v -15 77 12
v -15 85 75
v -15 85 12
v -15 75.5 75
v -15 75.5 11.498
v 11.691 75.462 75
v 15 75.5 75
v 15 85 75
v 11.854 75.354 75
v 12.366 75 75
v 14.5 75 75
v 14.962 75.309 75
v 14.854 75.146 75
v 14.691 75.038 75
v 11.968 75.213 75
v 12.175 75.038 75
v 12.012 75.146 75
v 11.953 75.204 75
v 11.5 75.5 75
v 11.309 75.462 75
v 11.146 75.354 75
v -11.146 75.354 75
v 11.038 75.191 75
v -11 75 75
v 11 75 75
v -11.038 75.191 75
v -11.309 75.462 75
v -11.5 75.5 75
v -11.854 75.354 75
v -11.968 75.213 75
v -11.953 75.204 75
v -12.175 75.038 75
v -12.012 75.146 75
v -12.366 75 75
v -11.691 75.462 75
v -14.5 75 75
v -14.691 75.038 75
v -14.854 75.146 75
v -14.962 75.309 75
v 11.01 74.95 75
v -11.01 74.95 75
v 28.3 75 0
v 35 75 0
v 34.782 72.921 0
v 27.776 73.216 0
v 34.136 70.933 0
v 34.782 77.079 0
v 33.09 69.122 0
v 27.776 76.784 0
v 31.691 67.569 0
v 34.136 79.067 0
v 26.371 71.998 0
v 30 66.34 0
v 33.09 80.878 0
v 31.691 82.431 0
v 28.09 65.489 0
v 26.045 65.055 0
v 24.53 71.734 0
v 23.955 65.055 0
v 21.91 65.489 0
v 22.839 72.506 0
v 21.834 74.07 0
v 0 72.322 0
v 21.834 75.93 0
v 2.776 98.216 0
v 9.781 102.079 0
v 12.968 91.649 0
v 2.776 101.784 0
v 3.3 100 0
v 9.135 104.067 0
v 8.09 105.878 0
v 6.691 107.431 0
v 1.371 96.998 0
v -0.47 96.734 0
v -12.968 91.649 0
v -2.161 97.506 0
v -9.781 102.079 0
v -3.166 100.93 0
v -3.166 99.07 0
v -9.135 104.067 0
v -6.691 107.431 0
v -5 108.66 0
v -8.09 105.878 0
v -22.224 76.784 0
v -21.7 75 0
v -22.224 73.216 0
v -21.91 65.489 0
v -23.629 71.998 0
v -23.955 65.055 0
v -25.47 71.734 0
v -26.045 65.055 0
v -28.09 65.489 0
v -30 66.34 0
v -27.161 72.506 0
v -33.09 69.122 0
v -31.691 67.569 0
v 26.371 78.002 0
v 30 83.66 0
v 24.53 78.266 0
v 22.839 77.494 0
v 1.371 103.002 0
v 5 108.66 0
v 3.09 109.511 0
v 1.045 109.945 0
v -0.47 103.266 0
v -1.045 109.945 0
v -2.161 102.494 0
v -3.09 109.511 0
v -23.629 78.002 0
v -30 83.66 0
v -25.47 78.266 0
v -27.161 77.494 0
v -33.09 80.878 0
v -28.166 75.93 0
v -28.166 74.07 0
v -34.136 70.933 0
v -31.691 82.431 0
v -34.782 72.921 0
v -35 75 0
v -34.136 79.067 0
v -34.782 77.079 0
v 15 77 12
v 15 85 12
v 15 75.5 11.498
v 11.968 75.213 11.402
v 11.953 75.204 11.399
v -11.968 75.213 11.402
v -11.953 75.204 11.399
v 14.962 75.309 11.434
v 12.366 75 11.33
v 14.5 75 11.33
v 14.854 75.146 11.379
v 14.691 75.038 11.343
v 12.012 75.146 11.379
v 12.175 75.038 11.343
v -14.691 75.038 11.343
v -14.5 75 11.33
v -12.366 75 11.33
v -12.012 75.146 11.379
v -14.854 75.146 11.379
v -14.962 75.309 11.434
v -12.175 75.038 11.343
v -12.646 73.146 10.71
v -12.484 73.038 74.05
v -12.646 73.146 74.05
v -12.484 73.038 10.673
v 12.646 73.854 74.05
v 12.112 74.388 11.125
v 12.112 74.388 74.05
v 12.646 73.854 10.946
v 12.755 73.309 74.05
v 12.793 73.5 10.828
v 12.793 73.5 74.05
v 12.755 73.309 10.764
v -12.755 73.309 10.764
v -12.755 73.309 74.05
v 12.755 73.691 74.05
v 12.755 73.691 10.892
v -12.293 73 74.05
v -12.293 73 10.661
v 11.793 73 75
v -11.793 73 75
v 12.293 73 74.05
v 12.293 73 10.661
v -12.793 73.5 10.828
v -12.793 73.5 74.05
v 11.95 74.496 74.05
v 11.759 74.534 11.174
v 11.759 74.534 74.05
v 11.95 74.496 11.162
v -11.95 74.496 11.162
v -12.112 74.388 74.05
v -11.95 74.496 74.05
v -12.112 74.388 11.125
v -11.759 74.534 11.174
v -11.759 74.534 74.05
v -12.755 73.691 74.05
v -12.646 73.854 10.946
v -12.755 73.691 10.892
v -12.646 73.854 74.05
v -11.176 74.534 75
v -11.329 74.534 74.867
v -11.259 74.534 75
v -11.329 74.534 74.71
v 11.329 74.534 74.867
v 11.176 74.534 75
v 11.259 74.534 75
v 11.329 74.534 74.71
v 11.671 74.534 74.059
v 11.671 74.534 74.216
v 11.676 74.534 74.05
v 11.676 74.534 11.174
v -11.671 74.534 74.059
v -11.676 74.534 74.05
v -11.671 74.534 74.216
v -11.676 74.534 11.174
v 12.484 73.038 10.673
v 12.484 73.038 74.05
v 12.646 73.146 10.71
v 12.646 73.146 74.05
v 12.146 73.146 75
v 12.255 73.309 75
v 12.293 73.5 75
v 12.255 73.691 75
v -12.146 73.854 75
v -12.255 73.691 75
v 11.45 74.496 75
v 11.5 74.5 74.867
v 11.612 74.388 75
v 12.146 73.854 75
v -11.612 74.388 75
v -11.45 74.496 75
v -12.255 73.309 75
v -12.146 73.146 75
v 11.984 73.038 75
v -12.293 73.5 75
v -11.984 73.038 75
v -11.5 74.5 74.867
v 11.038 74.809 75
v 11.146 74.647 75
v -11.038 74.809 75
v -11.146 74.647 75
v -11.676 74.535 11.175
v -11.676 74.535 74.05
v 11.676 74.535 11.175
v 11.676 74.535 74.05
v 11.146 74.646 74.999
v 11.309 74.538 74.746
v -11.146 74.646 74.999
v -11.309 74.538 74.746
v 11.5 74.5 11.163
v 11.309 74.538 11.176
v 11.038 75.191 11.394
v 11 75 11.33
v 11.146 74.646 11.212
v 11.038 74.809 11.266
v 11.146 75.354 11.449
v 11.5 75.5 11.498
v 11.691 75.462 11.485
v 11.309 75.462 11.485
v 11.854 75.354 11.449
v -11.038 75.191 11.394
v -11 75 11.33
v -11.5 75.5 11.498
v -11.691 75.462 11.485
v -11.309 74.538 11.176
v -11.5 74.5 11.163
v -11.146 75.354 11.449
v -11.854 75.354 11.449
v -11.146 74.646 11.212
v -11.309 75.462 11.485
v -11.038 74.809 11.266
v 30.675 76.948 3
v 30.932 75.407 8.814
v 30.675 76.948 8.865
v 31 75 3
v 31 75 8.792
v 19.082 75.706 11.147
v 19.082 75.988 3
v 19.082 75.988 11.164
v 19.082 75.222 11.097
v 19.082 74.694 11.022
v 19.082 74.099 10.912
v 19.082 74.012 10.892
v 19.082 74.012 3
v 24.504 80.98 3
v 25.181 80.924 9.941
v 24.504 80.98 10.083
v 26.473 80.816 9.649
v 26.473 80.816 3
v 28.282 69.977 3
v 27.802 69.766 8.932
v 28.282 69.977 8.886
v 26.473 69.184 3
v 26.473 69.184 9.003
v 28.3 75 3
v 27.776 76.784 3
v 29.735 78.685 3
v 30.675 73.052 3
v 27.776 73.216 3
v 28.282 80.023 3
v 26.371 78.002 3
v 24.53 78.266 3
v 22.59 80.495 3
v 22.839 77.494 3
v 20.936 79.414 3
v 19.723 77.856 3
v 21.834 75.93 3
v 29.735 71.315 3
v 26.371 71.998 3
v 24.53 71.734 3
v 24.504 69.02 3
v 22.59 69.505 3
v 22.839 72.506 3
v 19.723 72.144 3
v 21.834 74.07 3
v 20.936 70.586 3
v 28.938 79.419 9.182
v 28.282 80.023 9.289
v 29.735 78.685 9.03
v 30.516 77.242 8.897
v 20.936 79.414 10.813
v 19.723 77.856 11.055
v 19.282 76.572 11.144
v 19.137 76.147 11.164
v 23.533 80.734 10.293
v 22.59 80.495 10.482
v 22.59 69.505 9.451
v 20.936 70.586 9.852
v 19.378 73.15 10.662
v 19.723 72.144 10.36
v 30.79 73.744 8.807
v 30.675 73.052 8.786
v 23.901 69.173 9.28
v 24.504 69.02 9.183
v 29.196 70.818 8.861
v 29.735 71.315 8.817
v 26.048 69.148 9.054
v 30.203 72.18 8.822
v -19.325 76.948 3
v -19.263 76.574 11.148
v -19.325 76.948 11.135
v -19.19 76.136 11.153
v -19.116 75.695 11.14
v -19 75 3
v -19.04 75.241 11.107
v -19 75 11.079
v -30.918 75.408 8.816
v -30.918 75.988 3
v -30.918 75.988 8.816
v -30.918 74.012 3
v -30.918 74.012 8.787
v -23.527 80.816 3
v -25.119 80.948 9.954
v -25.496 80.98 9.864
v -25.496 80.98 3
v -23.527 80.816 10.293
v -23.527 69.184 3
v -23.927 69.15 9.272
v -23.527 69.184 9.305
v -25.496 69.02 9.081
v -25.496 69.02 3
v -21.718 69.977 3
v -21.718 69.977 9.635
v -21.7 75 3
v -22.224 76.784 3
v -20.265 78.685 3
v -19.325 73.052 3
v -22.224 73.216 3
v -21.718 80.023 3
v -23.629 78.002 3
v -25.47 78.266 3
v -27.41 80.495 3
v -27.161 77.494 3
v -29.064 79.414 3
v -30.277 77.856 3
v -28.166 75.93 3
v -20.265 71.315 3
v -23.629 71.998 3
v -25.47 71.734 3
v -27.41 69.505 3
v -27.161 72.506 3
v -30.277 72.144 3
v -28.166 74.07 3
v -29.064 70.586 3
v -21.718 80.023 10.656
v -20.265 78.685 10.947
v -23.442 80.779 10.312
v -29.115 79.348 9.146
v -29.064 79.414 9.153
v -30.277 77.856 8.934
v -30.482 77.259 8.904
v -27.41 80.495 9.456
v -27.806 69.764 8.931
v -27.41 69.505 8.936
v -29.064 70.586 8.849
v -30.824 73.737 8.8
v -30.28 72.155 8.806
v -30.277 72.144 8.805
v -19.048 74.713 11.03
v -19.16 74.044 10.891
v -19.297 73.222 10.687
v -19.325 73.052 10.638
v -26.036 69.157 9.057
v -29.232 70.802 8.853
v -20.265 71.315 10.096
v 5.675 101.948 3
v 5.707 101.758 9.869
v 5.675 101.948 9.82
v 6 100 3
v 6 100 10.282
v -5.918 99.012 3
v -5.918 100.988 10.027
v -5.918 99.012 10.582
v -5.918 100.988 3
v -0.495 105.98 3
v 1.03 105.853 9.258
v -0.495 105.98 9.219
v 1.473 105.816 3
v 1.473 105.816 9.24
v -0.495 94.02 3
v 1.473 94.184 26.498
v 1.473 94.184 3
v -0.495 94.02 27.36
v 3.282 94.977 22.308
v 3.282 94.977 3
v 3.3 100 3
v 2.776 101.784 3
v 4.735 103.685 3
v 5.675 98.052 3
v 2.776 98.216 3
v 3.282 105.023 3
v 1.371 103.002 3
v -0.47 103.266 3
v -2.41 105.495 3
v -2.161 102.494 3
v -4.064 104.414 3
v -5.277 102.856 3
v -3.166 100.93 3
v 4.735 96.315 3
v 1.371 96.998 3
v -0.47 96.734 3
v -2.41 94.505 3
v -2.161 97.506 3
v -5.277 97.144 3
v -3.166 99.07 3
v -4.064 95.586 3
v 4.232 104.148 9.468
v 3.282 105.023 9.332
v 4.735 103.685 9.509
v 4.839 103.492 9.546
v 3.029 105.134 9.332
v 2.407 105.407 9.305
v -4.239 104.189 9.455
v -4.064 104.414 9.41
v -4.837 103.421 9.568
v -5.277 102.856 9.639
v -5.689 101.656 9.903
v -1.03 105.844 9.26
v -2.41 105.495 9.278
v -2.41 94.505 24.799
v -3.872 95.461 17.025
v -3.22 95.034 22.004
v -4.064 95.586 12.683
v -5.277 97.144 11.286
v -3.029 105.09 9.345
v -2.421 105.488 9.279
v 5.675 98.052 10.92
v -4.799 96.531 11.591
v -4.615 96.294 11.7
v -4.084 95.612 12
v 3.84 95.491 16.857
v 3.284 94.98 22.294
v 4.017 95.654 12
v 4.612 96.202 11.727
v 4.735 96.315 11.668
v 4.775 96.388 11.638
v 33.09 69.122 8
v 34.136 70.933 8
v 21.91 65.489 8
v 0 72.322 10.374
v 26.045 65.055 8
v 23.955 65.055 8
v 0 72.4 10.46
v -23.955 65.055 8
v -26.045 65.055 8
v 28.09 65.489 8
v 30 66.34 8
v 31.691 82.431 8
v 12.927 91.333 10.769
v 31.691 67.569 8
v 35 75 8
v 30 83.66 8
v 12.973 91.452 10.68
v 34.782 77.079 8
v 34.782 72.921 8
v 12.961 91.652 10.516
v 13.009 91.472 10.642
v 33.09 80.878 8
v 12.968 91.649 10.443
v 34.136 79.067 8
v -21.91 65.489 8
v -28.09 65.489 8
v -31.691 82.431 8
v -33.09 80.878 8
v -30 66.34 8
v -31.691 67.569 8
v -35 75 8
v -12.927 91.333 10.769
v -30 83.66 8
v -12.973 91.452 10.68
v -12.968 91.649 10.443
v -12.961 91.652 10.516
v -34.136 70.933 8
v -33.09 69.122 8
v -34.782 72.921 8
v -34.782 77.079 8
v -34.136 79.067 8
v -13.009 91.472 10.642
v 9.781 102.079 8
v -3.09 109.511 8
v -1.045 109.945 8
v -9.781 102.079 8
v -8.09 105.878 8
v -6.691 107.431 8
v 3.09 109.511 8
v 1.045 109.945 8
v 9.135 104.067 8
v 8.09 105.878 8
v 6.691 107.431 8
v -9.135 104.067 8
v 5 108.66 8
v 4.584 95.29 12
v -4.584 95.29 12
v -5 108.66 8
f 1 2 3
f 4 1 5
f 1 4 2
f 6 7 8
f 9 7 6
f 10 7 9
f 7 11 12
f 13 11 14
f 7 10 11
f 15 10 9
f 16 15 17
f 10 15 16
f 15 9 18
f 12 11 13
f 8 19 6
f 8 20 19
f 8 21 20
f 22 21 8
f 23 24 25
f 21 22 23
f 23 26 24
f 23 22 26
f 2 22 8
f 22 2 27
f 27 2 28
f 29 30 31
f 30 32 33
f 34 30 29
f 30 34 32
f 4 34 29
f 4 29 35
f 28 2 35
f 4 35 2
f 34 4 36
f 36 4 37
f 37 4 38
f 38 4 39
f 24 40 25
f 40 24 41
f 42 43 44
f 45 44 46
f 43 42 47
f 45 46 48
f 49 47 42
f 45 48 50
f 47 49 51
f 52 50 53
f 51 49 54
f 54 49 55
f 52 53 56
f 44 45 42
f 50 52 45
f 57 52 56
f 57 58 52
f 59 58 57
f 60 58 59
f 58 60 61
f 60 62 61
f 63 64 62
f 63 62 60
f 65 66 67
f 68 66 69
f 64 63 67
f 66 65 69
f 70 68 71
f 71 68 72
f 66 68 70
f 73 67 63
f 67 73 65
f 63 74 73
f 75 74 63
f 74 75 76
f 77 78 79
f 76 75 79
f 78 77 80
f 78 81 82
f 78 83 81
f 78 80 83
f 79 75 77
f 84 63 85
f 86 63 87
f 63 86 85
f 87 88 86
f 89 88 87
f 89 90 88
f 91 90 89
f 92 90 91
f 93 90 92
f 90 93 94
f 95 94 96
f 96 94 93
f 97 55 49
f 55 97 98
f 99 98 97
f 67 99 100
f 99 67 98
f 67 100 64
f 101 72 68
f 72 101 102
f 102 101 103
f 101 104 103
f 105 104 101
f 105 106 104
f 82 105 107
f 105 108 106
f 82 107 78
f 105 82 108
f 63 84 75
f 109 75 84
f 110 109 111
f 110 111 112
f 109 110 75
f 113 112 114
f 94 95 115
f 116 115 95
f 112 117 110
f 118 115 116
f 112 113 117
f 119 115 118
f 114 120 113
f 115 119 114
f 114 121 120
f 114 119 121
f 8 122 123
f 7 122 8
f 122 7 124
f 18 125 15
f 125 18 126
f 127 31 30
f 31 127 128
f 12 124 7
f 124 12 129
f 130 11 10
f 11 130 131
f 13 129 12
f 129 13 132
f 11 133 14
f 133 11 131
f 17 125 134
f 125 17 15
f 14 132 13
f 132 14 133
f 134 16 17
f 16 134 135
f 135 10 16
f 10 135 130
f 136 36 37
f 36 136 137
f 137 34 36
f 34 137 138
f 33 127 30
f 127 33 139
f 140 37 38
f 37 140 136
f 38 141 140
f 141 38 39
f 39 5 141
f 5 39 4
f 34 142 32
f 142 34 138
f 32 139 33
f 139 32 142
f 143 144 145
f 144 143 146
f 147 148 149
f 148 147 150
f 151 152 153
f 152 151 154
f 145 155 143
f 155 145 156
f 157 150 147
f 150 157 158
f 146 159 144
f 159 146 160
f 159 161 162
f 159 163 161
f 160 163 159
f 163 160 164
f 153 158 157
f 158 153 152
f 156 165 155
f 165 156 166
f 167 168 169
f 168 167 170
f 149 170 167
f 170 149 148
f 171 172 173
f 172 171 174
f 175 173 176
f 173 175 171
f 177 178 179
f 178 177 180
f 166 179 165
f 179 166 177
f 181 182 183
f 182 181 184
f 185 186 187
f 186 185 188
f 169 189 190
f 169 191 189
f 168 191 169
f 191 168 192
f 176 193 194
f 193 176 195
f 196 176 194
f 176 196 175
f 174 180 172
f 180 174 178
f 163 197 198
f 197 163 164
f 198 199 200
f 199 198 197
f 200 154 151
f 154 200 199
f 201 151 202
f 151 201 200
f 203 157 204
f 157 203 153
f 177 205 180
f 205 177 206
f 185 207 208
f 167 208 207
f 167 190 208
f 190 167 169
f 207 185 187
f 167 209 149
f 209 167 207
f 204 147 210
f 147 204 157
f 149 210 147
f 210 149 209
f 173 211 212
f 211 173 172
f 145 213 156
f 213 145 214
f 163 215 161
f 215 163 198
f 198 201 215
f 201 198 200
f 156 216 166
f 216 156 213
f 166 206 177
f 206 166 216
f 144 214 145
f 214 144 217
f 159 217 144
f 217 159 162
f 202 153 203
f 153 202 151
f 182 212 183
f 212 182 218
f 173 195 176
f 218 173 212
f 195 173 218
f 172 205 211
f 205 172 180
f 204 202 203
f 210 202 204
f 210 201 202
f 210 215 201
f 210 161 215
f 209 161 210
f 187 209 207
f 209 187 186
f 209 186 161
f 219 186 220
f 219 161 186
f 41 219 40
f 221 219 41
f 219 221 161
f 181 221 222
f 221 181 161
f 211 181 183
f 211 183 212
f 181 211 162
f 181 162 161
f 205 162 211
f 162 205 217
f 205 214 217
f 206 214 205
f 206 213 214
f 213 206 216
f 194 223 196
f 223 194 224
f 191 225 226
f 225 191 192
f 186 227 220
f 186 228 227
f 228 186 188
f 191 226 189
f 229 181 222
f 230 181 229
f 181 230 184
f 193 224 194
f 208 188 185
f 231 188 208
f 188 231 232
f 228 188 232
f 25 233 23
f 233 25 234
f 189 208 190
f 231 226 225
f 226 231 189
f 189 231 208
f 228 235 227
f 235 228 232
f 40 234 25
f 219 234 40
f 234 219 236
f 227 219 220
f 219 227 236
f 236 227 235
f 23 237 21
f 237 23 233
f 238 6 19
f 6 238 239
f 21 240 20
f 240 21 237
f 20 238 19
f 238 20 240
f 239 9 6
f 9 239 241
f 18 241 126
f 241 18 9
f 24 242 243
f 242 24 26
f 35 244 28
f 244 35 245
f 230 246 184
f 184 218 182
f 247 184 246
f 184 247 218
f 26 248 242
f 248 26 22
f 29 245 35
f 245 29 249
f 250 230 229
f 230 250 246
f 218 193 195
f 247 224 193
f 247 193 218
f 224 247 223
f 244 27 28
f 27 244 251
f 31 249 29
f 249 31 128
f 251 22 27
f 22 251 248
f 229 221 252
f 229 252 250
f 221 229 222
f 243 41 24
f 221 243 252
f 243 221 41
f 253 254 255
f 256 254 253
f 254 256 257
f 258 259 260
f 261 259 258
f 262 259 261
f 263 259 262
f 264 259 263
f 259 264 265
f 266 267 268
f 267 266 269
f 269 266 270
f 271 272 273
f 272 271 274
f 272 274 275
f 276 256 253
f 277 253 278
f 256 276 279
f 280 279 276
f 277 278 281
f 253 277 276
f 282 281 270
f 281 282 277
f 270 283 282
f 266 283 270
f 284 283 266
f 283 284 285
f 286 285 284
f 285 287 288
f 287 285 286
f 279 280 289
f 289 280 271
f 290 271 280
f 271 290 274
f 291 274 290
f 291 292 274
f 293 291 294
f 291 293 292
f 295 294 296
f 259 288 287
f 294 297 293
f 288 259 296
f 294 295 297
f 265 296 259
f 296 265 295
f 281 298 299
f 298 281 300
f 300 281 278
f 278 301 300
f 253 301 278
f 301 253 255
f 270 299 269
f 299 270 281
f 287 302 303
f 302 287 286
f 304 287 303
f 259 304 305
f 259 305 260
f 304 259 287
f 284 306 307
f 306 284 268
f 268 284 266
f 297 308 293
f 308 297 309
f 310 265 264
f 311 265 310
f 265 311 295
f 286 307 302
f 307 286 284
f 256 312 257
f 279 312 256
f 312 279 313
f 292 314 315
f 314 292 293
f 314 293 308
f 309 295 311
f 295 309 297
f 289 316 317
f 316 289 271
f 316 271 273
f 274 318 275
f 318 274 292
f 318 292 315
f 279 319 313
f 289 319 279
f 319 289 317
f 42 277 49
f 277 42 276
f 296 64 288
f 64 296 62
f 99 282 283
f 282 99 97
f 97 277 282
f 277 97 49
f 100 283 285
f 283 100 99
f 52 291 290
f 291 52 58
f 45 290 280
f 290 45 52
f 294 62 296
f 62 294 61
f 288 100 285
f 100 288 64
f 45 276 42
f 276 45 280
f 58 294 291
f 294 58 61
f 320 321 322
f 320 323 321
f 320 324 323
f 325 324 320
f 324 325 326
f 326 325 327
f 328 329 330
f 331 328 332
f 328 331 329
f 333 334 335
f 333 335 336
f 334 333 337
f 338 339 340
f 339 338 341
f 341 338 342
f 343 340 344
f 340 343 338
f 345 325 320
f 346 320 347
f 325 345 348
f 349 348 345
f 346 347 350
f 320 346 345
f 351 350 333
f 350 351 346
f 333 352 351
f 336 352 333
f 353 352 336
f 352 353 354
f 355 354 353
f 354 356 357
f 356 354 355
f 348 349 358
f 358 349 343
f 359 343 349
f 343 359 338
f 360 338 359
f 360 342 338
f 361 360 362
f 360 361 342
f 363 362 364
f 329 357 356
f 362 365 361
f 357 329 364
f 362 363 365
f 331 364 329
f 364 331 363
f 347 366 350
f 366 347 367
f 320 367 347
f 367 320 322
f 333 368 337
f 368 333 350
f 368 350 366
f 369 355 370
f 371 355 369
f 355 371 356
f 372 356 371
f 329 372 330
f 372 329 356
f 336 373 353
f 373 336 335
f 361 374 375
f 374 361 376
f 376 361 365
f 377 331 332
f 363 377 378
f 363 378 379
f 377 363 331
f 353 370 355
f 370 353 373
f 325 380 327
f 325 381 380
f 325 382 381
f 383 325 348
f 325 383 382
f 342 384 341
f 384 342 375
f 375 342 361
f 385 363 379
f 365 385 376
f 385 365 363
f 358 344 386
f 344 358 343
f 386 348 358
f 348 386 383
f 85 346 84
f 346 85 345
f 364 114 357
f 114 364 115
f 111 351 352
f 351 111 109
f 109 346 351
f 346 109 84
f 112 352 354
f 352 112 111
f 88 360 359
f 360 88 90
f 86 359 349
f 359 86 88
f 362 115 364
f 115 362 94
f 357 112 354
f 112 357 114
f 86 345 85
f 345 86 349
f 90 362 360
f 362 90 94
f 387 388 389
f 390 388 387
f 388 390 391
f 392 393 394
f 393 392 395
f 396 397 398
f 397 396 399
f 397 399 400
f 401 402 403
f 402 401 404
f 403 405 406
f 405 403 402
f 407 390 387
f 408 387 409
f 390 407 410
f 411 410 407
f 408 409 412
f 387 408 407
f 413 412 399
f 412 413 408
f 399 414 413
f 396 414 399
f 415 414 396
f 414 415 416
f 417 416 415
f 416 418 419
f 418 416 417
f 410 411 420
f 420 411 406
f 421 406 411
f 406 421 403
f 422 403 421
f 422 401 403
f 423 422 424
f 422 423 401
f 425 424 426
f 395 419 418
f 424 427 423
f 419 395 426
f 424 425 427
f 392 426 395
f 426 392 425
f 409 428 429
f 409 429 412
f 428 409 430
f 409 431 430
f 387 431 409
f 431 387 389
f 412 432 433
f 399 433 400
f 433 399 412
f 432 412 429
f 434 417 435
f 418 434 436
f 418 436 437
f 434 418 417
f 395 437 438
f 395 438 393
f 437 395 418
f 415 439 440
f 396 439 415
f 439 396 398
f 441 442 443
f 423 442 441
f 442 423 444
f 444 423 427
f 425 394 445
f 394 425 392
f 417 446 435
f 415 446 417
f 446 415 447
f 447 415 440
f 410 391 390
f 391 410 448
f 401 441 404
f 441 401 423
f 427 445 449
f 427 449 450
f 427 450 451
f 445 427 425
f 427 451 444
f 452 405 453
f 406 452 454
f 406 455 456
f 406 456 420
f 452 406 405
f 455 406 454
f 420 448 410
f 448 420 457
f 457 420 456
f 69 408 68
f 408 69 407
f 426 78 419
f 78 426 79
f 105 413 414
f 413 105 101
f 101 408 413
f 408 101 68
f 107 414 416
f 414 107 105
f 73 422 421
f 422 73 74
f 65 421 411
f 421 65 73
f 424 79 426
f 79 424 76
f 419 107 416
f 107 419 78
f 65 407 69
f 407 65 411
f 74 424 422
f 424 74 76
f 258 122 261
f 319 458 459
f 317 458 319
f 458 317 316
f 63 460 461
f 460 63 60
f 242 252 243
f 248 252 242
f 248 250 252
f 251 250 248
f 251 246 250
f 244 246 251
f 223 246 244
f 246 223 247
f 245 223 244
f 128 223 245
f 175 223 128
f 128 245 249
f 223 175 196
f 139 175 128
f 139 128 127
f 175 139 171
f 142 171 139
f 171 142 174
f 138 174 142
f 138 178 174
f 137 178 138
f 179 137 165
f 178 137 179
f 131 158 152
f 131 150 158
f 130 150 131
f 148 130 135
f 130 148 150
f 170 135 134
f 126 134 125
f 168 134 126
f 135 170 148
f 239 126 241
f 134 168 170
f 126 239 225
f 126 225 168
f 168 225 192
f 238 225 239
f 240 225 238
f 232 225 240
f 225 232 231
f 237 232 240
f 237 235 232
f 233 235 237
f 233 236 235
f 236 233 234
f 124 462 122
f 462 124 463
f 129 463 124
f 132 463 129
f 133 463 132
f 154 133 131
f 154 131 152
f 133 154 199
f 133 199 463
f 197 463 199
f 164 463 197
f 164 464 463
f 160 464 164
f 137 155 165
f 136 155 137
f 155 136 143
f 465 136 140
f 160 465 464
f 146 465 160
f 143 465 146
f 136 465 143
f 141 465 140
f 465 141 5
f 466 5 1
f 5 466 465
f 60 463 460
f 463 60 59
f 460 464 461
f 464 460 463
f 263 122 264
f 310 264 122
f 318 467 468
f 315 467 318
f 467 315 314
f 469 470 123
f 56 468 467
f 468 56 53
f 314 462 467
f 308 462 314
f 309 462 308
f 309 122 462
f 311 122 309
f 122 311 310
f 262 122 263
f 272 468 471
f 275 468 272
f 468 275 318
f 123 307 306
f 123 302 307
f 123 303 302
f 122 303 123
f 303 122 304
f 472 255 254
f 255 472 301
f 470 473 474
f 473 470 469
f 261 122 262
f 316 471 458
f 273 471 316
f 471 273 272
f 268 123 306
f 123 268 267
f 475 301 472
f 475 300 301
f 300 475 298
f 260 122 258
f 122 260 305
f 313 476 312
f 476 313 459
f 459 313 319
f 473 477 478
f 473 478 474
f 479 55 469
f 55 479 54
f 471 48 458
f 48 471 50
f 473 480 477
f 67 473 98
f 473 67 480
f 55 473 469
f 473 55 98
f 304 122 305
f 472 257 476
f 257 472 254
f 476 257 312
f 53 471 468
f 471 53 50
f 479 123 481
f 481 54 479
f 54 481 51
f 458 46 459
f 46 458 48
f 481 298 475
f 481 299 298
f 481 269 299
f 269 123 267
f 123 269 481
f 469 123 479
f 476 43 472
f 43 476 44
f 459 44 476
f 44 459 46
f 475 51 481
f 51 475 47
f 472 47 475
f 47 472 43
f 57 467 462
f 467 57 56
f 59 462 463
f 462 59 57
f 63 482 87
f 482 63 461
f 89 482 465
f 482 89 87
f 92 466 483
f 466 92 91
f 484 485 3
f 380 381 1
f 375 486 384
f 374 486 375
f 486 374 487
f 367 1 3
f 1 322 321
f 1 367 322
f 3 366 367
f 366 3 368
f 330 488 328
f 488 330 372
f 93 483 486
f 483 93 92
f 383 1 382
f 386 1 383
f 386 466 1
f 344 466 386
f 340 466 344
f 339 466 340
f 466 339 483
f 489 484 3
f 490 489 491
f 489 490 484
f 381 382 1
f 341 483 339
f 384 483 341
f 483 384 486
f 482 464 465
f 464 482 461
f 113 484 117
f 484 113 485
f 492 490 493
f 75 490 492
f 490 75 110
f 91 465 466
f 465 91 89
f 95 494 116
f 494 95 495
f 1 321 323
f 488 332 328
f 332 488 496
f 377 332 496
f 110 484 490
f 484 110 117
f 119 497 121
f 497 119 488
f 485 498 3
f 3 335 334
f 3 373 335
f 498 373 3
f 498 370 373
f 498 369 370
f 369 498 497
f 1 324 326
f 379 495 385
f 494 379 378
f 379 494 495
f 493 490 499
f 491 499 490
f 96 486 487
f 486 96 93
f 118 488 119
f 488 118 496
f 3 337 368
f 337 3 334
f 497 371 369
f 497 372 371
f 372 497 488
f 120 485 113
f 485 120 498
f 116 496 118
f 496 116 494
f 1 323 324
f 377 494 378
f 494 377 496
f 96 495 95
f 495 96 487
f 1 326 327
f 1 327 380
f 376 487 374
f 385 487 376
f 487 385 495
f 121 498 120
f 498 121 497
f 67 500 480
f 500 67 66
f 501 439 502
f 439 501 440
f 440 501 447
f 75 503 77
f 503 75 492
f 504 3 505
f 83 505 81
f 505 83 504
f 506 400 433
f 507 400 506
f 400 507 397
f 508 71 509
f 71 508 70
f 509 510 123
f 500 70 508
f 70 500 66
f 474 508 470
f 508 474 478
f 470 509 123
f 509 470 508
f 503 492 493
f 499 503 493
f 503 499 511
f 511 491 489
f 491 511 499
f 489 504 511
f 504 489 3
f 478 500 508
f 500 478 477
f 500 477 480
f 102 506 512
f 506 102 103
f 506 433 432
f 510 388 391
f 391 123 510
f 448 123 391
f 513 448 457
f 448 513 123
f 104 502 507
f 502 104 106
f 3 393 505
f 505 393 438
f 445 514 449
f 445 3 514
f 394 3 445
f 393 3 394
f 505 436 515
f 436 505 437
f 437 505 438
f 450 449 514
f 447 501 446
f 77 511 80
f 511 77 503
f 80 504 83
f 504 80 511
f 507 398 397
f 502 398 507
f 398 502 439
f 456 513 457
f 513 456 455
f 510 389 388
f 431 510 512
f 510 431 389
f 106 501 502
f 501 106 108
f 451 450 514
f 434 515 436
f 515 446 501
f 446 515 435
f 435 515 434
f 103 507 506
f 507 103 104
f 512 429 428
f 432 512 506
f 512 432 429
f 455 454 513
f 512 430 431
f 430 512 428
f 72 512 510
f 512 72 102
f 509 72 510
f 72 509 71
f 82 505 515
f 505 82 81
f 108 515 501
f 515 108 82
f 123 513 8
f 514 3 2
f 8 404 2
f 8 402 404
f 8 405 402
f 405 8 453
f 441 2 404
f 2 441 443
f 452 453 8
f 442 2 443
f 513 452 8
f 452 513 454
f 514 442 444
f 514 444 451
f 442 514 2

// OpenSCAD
// file: parameters.scad
/*
OpenFlexure Dissection Microscope: Parameters

These variables set the geometry of the microscope.
*/

// Geometry of the mounting post
front_dovetail_y = 75; // position of the main dovetail
front_dovetail_w = 30; // width of the main dovetail
post_h = 75; // height of the post (working distance + clip_h)
mounting_holes = [[25,0,0],[-25,0,0],[0,25,0]]; // location of mounting bolts

// Geometry of the camera mount

// Illumination
illumination_arm_l = 35.6;
// NB illumination arm places the LED 35.6mm from the mounting hole.

d = 0.05;
// main file
/******************************************************************
*                                                                 *
* OpenFlexure Dissection Microscope: Support Post                 *
*                                                                 *
* This is the post onto which the dissection microscope mounts.   *
*                                                                 *
* (c) Richard Bowman, January 2016                                *
* Released under the CERN Open Hardware License                   *
*                                                                 *
******************************************************************/

use <./utilities.scad>;
use <./compact_nut_seat.scad>;
use <./dovetail.scad>;
include <./parameters.scad>;

module front(h){
    // the front of the structure (sits just behind the dovetail)
    translate([-front_dovetail_w/2,front_dovetail_y+2,0]) cube([front_dovetail_w, 10-2, h]);
}

module bottom(h=12){
    // the base of the structure
    hull(){
        front(h);
        translate([0,front_dovetail_y + 15,0]) cylinder(r=7, h=h);
    }
}

difference(){
    union(){
        //the dovetail
        translate([0,front_dovetail_y,0]) mirror([0,1,0])dovetail_m([front_dovetail_w, 10, post_h]);
        
        // support for the dovetail
        hull(){
            front(post_h);
            bottom();
        }
        
        // mounting screws lugs (holes are drilled later)
        for(hole = mounting_holes){
            hull(){
                bottom();
                translate(hole + [0, front_dovetail_y,0]) cylinder(r=10,h=8);
            }
        }
    }
    
    // mounting screw holes
    for(hole = mounting_holes){
        translate(hole + [0, front_dovetail_y,3]){
            cylinder(r=6,h=999);
            cylinder(r=6/2*1.1,h=999,center=true);
        }
    }
}
    
